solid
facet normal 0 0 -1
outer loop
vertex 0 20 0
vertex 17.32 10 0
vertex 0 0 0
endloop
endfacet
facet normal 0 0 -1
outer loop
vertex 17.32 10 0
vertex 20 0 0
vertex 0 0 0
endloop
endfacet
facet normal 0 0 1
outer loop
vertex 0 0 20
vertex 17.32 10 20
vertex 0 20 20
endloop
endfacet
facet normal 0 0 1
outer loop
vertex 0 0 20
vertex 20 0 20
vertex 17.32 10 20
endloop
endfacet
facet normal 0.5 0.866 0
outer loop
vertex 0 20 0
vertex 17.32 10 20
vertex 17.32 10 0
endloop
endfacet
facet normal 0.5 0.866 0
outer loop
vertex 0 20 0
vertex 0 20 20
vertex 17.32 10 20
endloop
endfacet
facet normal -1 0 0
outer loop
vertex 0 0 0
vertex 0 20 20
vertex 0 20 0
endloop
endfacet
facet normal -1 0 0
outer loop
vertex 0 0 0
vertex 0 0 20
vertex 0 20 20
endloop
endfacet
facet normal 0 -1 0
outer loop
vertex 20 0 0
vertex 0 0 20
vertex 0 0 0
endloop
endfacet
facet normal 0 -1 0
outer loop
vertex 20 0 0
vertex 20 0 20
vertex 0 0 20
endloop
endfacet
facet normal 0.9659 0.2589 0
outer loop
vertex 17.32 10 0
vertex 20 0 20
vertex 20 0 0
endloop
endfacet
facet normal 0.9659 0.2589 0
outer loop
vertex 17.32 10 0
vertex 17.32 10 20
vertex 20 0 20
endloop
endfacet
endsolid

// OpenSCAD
module twisted_cylinder(height, inner_radius, outer_radius, twist_angle, segments) {
  linear_extrude(height = height, convexity = 10) {
    polygon(points = [
      [0, 0],
      [height, 0],
      [height * cos(twist_angle), height * sin(twist_angle)],
      [0, height]
    ]);
  }
}

twisted_cylinder(height = 20, inner_radius = 10, outer_radius = 15, twist_angle = 30, segments = 64);
